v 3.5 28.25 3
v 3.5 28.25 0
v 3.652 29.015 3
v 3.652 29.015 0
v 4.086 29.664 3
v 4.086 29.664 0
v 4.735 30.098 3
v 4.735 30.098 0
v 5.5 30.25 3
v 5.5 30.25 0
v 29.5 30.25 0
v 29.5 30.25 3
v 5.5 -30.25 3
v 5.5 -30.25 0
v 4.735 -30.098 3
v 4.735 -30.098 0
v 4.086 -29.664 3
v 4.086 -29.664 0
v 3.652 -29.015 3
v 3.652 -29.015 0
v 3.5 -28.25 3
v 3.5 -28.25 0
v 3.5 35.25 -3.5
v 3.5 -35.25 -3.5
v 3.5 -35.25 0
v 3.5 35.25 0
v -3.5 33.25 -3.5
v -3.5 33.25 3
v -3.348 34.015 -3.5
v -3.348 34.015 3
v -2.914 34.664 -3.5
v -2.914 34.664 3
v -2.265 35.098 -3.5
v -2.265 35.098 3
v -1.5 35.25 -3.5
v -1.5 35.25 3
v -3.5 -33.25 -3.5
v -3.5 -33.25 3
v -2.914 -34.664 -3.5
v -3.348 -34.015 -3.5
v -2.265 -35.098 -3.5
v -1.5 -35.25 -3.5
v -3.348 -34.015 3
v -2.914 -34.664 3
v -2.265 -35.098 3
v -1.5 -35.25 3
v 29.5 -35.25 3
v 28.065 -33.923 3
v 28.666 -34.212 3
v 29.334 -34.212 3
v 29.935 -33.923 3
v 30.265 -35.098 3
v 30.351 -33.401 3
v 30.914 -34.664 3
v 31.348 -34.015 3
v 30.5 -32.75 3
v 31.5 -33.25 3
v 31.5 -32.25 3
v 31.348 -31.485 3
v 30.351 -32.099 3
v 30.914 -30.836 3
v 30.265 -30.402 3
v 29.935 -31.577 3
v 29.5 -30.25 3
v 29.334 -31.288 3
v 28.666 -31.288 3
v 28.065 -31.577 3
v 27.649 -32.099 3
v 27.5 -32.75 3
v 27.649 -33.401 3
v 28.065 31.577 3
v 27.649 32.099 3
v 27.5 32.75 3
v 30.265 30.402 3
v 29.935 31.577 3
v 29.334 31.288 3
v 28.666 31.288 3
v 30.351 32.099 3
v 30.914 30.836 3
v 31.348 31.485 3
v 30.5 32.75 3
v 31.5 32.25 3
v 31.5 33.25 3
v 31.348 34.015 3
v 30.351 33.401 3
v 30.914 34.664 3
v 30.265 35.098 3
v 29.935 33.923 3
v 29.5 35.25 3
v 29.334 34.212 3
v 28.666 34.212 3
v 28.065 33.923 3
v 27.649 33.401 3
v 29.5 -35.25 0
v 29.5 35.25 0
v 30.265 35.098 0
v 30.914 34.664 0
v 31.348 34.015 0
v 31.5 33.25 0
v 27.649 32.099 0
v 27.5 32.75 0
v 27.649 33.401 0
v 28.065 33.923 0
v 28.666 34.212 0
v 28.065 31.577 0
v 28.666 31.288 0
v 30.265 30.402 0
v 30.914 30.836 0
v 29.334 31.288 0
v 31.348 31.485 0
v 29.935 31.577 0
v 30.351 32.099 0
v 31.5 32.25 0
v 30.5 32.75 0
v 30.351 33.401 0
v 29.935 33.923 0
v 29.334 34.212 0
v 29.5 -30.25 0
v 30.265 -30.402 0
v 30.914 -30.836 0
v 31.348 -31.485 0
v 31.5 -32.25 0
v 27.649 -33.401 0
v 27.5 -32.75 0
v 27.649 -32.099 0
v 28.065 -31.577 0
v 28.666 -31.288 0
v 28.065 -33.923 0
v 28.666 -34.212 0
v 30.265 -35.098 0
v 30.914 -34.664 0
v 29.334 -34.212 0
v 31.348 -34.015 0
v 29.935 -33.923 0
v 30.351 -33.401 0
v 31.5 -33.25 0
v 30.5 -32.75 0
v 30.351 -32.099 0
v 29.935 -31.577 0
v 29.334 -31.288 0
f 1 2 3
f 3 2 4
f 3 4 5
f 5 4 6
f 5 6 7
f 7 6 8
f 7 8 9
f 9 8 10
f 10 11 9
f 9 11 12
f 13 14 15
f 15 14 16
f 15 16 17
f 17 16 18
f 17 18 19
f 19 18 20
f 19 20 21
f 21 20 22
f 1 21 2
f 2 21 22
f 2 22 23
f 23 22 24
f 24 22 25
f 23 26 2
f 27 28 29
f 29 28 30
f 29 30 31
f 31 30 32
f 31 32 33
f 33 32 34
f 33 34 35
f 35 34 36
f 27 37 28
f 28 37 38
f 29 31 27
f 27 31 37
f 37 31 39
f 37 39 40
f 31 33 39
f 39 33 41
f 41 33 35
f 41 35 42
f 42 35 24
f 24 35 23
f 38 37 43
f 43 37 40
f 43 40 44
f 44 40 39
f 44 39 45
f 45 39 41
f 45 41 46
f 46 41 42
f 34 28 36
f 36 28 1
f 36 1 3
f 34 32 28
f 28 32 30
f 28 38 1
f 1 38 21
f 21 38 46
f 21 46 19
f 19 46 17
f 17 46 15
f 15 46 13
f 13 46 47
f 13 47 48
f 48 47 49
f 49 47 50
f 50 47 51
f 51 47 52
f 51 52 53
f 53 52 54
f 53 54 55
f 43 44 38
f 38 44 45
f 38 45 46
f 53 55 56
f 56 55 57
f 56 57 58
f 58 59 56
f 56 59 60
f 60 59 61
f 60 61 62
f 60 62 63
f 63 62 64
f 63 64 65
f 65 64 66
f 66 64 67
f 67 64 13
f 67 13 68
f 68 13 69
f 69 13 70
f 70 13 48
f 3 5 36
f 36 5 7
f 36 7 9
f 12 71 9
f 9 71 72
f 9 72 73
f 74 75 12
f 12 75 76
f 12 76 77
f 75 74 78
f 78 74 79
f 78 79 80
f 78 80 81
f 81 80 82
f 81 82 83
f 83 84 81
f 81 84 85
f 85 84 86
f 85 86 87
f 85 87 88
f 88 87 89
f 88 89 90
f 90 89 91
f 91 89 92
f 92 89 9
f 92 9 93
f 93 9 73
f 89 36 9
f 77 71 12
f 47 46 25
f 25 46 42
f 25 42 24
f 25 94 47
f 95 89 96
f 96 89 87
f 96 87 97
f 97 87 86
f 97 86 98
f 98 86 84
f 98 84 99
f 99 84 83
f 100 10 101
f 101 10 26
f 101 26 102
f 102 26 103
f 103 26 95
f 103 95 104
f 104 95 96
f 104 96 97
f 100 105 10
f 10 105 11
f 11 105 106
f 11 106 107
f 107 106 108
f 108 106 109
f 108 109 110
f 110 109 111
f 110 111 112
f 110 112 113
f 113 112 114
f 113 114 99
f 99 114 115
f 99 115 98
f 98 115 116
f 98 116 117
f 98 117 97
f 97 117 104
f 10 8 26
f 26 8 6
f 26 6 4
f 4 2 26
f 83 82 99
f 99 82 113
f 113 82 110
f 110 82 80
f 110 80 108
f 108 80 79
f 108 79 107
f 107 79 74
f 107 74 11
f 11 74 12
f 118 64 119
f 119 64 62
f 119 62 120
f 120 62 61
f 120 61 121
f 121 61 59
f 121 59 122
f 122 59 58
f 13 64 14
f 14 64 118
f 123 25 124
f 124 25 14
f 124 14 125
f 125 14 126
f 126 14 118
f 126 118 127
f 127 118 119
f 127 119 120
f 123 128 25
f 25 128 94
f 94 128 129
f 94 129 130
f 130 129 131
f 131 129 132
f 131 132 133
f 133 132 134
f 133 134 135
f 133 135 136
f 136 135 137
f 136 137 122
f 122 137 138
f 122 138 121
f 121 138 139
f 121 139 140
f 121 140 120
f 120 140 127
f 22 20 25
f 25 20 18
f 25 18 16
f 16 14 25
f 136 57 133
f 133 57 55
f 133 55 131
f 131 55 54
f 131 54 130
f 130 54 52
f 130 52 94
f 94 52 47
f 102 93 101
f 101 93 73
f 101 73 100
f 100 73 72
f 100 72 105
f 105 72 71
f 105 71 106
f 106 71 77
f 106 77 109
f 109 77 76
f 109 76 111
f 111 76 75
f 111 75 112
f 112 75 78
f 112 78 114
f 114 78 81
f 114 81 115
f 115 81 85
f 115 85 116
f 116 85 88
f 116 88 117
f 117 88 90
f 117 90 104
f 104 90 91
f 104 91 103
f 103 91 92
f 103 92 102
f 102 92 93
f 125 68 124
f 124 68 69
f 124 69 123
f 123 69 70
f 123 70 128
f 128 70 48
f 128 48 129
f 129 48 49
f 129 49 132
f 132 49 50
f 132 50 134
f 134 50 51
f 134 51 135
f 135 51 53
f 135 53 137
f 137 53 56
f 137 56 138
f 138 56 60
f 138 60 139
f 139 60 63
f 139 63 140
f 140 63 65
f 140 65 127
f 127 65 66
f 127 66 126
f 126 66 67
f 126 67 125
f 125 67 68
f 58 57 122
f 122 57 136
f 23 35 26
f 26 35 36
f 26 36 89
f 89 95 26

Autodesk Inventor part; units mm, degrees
ref_plane "YZ Plane" through (0, 0, 0) normal (1, 0, 0) x (0, 1, 0)
ref_plane "XZ Plane" through (0, 0, 0) normal (0, 1, 0) x (-1, 0, 0)
ref_plane "XY Plane" through (0, 0, 0) normal (0, 0, 1) x (1, 0, 0)
sketch "Sketch1" plane through (0, 0, 0) normal (0, 0, 1) x (1, 0, 0)
  line L0 (31.5, 30.25) -> (31.5, 35.25)
  line L1 (31.5, 35.25) -> (-3.5, 35.25)
  line L2 (-3.5, 35.25) -> (-3.5, 0)
  line L3 (-3.5, 0) -> (3.5, 0)
  line L4 (3.5, 0) -> (3.5, 30.25)
  line L5 (3.5, 30.25) -> (31.5, 30.25)
  point P0 (0, 0)
  point P1 (0, 0)
  point P2 (31.5, 32.75)
  dimension "d0" = 7
  dimension "d2" = 5
  dimension "d3" = 35
  dimension "d4" = 32.75
extrude "Extrusion1" add sketch "Sketch1" along normal blind 3
mirror "Mirror1" about plane through (0, 0, 0) normal (0, 1, 0) of "Extrusion1"
sketch "Sketch2" plane through (0, 0, 0) normal (0, 0, -1) x (-1, 0, 0)
  line L0 (-31.5, -35.25) -> (3.5, -35.25) projected
  line L1 (-31.5, 35.25) -> (3.5, 35.25) projected
  line L2 (3.5, -35.25) -> (-3.5, -35.25)
  line L3 (-3.5, -35.25) -> (-3.5, 35.25)
  line L4 (-3.5, 35.25) -> (3.5, 35.25)
  line L5 (3.5, 35.25) -> (3.5, -35.25)
  line L6 (-3.5, 30.25) -> (-3.5, -30.25) projected
  point P0 (0, 0)
  point P1 (-3.5, 0)
  point P2 (3.5, 35.25)
  point P3 (-3.5, -35.25)
extrude "Extrusion2" add sketch "Sketch2" along normal blind 3.5
sketch "Sketch3" plane through (0, 0, 3) normal (0, 0, 1) x (1, 0, 0)
  line L0 (29, 32.75) -> (29, -32.75)
  line L1 (31.5, 30.25) -> (31.5, 35.25) projected
  point P0 (0, 0)
  point P1 (29, 0)
  dimension "d16" = 65.5
  dimension "d18" = 2.5
hole "Hole1" at (29, -32.75, 3) at (29, 32.75, 3) direction (0, 0, -1) diameter 3 end through all
fillet "Fillet1" radius 2 8 edges at (31.5, -35.25, 1.5) (31.5, -30.25, 1.5) (31.5, 30.25, 1.5) (31.5, 35.25, 1.5) (-3.5, -35.25, -0.25) (-3.5, 35.25, -0.25) (3.5, -30.25, 1.5) (3.5, 30.25, 1.5)
properties part number "Display_Hilder" material "PC/ABS Plastic"
